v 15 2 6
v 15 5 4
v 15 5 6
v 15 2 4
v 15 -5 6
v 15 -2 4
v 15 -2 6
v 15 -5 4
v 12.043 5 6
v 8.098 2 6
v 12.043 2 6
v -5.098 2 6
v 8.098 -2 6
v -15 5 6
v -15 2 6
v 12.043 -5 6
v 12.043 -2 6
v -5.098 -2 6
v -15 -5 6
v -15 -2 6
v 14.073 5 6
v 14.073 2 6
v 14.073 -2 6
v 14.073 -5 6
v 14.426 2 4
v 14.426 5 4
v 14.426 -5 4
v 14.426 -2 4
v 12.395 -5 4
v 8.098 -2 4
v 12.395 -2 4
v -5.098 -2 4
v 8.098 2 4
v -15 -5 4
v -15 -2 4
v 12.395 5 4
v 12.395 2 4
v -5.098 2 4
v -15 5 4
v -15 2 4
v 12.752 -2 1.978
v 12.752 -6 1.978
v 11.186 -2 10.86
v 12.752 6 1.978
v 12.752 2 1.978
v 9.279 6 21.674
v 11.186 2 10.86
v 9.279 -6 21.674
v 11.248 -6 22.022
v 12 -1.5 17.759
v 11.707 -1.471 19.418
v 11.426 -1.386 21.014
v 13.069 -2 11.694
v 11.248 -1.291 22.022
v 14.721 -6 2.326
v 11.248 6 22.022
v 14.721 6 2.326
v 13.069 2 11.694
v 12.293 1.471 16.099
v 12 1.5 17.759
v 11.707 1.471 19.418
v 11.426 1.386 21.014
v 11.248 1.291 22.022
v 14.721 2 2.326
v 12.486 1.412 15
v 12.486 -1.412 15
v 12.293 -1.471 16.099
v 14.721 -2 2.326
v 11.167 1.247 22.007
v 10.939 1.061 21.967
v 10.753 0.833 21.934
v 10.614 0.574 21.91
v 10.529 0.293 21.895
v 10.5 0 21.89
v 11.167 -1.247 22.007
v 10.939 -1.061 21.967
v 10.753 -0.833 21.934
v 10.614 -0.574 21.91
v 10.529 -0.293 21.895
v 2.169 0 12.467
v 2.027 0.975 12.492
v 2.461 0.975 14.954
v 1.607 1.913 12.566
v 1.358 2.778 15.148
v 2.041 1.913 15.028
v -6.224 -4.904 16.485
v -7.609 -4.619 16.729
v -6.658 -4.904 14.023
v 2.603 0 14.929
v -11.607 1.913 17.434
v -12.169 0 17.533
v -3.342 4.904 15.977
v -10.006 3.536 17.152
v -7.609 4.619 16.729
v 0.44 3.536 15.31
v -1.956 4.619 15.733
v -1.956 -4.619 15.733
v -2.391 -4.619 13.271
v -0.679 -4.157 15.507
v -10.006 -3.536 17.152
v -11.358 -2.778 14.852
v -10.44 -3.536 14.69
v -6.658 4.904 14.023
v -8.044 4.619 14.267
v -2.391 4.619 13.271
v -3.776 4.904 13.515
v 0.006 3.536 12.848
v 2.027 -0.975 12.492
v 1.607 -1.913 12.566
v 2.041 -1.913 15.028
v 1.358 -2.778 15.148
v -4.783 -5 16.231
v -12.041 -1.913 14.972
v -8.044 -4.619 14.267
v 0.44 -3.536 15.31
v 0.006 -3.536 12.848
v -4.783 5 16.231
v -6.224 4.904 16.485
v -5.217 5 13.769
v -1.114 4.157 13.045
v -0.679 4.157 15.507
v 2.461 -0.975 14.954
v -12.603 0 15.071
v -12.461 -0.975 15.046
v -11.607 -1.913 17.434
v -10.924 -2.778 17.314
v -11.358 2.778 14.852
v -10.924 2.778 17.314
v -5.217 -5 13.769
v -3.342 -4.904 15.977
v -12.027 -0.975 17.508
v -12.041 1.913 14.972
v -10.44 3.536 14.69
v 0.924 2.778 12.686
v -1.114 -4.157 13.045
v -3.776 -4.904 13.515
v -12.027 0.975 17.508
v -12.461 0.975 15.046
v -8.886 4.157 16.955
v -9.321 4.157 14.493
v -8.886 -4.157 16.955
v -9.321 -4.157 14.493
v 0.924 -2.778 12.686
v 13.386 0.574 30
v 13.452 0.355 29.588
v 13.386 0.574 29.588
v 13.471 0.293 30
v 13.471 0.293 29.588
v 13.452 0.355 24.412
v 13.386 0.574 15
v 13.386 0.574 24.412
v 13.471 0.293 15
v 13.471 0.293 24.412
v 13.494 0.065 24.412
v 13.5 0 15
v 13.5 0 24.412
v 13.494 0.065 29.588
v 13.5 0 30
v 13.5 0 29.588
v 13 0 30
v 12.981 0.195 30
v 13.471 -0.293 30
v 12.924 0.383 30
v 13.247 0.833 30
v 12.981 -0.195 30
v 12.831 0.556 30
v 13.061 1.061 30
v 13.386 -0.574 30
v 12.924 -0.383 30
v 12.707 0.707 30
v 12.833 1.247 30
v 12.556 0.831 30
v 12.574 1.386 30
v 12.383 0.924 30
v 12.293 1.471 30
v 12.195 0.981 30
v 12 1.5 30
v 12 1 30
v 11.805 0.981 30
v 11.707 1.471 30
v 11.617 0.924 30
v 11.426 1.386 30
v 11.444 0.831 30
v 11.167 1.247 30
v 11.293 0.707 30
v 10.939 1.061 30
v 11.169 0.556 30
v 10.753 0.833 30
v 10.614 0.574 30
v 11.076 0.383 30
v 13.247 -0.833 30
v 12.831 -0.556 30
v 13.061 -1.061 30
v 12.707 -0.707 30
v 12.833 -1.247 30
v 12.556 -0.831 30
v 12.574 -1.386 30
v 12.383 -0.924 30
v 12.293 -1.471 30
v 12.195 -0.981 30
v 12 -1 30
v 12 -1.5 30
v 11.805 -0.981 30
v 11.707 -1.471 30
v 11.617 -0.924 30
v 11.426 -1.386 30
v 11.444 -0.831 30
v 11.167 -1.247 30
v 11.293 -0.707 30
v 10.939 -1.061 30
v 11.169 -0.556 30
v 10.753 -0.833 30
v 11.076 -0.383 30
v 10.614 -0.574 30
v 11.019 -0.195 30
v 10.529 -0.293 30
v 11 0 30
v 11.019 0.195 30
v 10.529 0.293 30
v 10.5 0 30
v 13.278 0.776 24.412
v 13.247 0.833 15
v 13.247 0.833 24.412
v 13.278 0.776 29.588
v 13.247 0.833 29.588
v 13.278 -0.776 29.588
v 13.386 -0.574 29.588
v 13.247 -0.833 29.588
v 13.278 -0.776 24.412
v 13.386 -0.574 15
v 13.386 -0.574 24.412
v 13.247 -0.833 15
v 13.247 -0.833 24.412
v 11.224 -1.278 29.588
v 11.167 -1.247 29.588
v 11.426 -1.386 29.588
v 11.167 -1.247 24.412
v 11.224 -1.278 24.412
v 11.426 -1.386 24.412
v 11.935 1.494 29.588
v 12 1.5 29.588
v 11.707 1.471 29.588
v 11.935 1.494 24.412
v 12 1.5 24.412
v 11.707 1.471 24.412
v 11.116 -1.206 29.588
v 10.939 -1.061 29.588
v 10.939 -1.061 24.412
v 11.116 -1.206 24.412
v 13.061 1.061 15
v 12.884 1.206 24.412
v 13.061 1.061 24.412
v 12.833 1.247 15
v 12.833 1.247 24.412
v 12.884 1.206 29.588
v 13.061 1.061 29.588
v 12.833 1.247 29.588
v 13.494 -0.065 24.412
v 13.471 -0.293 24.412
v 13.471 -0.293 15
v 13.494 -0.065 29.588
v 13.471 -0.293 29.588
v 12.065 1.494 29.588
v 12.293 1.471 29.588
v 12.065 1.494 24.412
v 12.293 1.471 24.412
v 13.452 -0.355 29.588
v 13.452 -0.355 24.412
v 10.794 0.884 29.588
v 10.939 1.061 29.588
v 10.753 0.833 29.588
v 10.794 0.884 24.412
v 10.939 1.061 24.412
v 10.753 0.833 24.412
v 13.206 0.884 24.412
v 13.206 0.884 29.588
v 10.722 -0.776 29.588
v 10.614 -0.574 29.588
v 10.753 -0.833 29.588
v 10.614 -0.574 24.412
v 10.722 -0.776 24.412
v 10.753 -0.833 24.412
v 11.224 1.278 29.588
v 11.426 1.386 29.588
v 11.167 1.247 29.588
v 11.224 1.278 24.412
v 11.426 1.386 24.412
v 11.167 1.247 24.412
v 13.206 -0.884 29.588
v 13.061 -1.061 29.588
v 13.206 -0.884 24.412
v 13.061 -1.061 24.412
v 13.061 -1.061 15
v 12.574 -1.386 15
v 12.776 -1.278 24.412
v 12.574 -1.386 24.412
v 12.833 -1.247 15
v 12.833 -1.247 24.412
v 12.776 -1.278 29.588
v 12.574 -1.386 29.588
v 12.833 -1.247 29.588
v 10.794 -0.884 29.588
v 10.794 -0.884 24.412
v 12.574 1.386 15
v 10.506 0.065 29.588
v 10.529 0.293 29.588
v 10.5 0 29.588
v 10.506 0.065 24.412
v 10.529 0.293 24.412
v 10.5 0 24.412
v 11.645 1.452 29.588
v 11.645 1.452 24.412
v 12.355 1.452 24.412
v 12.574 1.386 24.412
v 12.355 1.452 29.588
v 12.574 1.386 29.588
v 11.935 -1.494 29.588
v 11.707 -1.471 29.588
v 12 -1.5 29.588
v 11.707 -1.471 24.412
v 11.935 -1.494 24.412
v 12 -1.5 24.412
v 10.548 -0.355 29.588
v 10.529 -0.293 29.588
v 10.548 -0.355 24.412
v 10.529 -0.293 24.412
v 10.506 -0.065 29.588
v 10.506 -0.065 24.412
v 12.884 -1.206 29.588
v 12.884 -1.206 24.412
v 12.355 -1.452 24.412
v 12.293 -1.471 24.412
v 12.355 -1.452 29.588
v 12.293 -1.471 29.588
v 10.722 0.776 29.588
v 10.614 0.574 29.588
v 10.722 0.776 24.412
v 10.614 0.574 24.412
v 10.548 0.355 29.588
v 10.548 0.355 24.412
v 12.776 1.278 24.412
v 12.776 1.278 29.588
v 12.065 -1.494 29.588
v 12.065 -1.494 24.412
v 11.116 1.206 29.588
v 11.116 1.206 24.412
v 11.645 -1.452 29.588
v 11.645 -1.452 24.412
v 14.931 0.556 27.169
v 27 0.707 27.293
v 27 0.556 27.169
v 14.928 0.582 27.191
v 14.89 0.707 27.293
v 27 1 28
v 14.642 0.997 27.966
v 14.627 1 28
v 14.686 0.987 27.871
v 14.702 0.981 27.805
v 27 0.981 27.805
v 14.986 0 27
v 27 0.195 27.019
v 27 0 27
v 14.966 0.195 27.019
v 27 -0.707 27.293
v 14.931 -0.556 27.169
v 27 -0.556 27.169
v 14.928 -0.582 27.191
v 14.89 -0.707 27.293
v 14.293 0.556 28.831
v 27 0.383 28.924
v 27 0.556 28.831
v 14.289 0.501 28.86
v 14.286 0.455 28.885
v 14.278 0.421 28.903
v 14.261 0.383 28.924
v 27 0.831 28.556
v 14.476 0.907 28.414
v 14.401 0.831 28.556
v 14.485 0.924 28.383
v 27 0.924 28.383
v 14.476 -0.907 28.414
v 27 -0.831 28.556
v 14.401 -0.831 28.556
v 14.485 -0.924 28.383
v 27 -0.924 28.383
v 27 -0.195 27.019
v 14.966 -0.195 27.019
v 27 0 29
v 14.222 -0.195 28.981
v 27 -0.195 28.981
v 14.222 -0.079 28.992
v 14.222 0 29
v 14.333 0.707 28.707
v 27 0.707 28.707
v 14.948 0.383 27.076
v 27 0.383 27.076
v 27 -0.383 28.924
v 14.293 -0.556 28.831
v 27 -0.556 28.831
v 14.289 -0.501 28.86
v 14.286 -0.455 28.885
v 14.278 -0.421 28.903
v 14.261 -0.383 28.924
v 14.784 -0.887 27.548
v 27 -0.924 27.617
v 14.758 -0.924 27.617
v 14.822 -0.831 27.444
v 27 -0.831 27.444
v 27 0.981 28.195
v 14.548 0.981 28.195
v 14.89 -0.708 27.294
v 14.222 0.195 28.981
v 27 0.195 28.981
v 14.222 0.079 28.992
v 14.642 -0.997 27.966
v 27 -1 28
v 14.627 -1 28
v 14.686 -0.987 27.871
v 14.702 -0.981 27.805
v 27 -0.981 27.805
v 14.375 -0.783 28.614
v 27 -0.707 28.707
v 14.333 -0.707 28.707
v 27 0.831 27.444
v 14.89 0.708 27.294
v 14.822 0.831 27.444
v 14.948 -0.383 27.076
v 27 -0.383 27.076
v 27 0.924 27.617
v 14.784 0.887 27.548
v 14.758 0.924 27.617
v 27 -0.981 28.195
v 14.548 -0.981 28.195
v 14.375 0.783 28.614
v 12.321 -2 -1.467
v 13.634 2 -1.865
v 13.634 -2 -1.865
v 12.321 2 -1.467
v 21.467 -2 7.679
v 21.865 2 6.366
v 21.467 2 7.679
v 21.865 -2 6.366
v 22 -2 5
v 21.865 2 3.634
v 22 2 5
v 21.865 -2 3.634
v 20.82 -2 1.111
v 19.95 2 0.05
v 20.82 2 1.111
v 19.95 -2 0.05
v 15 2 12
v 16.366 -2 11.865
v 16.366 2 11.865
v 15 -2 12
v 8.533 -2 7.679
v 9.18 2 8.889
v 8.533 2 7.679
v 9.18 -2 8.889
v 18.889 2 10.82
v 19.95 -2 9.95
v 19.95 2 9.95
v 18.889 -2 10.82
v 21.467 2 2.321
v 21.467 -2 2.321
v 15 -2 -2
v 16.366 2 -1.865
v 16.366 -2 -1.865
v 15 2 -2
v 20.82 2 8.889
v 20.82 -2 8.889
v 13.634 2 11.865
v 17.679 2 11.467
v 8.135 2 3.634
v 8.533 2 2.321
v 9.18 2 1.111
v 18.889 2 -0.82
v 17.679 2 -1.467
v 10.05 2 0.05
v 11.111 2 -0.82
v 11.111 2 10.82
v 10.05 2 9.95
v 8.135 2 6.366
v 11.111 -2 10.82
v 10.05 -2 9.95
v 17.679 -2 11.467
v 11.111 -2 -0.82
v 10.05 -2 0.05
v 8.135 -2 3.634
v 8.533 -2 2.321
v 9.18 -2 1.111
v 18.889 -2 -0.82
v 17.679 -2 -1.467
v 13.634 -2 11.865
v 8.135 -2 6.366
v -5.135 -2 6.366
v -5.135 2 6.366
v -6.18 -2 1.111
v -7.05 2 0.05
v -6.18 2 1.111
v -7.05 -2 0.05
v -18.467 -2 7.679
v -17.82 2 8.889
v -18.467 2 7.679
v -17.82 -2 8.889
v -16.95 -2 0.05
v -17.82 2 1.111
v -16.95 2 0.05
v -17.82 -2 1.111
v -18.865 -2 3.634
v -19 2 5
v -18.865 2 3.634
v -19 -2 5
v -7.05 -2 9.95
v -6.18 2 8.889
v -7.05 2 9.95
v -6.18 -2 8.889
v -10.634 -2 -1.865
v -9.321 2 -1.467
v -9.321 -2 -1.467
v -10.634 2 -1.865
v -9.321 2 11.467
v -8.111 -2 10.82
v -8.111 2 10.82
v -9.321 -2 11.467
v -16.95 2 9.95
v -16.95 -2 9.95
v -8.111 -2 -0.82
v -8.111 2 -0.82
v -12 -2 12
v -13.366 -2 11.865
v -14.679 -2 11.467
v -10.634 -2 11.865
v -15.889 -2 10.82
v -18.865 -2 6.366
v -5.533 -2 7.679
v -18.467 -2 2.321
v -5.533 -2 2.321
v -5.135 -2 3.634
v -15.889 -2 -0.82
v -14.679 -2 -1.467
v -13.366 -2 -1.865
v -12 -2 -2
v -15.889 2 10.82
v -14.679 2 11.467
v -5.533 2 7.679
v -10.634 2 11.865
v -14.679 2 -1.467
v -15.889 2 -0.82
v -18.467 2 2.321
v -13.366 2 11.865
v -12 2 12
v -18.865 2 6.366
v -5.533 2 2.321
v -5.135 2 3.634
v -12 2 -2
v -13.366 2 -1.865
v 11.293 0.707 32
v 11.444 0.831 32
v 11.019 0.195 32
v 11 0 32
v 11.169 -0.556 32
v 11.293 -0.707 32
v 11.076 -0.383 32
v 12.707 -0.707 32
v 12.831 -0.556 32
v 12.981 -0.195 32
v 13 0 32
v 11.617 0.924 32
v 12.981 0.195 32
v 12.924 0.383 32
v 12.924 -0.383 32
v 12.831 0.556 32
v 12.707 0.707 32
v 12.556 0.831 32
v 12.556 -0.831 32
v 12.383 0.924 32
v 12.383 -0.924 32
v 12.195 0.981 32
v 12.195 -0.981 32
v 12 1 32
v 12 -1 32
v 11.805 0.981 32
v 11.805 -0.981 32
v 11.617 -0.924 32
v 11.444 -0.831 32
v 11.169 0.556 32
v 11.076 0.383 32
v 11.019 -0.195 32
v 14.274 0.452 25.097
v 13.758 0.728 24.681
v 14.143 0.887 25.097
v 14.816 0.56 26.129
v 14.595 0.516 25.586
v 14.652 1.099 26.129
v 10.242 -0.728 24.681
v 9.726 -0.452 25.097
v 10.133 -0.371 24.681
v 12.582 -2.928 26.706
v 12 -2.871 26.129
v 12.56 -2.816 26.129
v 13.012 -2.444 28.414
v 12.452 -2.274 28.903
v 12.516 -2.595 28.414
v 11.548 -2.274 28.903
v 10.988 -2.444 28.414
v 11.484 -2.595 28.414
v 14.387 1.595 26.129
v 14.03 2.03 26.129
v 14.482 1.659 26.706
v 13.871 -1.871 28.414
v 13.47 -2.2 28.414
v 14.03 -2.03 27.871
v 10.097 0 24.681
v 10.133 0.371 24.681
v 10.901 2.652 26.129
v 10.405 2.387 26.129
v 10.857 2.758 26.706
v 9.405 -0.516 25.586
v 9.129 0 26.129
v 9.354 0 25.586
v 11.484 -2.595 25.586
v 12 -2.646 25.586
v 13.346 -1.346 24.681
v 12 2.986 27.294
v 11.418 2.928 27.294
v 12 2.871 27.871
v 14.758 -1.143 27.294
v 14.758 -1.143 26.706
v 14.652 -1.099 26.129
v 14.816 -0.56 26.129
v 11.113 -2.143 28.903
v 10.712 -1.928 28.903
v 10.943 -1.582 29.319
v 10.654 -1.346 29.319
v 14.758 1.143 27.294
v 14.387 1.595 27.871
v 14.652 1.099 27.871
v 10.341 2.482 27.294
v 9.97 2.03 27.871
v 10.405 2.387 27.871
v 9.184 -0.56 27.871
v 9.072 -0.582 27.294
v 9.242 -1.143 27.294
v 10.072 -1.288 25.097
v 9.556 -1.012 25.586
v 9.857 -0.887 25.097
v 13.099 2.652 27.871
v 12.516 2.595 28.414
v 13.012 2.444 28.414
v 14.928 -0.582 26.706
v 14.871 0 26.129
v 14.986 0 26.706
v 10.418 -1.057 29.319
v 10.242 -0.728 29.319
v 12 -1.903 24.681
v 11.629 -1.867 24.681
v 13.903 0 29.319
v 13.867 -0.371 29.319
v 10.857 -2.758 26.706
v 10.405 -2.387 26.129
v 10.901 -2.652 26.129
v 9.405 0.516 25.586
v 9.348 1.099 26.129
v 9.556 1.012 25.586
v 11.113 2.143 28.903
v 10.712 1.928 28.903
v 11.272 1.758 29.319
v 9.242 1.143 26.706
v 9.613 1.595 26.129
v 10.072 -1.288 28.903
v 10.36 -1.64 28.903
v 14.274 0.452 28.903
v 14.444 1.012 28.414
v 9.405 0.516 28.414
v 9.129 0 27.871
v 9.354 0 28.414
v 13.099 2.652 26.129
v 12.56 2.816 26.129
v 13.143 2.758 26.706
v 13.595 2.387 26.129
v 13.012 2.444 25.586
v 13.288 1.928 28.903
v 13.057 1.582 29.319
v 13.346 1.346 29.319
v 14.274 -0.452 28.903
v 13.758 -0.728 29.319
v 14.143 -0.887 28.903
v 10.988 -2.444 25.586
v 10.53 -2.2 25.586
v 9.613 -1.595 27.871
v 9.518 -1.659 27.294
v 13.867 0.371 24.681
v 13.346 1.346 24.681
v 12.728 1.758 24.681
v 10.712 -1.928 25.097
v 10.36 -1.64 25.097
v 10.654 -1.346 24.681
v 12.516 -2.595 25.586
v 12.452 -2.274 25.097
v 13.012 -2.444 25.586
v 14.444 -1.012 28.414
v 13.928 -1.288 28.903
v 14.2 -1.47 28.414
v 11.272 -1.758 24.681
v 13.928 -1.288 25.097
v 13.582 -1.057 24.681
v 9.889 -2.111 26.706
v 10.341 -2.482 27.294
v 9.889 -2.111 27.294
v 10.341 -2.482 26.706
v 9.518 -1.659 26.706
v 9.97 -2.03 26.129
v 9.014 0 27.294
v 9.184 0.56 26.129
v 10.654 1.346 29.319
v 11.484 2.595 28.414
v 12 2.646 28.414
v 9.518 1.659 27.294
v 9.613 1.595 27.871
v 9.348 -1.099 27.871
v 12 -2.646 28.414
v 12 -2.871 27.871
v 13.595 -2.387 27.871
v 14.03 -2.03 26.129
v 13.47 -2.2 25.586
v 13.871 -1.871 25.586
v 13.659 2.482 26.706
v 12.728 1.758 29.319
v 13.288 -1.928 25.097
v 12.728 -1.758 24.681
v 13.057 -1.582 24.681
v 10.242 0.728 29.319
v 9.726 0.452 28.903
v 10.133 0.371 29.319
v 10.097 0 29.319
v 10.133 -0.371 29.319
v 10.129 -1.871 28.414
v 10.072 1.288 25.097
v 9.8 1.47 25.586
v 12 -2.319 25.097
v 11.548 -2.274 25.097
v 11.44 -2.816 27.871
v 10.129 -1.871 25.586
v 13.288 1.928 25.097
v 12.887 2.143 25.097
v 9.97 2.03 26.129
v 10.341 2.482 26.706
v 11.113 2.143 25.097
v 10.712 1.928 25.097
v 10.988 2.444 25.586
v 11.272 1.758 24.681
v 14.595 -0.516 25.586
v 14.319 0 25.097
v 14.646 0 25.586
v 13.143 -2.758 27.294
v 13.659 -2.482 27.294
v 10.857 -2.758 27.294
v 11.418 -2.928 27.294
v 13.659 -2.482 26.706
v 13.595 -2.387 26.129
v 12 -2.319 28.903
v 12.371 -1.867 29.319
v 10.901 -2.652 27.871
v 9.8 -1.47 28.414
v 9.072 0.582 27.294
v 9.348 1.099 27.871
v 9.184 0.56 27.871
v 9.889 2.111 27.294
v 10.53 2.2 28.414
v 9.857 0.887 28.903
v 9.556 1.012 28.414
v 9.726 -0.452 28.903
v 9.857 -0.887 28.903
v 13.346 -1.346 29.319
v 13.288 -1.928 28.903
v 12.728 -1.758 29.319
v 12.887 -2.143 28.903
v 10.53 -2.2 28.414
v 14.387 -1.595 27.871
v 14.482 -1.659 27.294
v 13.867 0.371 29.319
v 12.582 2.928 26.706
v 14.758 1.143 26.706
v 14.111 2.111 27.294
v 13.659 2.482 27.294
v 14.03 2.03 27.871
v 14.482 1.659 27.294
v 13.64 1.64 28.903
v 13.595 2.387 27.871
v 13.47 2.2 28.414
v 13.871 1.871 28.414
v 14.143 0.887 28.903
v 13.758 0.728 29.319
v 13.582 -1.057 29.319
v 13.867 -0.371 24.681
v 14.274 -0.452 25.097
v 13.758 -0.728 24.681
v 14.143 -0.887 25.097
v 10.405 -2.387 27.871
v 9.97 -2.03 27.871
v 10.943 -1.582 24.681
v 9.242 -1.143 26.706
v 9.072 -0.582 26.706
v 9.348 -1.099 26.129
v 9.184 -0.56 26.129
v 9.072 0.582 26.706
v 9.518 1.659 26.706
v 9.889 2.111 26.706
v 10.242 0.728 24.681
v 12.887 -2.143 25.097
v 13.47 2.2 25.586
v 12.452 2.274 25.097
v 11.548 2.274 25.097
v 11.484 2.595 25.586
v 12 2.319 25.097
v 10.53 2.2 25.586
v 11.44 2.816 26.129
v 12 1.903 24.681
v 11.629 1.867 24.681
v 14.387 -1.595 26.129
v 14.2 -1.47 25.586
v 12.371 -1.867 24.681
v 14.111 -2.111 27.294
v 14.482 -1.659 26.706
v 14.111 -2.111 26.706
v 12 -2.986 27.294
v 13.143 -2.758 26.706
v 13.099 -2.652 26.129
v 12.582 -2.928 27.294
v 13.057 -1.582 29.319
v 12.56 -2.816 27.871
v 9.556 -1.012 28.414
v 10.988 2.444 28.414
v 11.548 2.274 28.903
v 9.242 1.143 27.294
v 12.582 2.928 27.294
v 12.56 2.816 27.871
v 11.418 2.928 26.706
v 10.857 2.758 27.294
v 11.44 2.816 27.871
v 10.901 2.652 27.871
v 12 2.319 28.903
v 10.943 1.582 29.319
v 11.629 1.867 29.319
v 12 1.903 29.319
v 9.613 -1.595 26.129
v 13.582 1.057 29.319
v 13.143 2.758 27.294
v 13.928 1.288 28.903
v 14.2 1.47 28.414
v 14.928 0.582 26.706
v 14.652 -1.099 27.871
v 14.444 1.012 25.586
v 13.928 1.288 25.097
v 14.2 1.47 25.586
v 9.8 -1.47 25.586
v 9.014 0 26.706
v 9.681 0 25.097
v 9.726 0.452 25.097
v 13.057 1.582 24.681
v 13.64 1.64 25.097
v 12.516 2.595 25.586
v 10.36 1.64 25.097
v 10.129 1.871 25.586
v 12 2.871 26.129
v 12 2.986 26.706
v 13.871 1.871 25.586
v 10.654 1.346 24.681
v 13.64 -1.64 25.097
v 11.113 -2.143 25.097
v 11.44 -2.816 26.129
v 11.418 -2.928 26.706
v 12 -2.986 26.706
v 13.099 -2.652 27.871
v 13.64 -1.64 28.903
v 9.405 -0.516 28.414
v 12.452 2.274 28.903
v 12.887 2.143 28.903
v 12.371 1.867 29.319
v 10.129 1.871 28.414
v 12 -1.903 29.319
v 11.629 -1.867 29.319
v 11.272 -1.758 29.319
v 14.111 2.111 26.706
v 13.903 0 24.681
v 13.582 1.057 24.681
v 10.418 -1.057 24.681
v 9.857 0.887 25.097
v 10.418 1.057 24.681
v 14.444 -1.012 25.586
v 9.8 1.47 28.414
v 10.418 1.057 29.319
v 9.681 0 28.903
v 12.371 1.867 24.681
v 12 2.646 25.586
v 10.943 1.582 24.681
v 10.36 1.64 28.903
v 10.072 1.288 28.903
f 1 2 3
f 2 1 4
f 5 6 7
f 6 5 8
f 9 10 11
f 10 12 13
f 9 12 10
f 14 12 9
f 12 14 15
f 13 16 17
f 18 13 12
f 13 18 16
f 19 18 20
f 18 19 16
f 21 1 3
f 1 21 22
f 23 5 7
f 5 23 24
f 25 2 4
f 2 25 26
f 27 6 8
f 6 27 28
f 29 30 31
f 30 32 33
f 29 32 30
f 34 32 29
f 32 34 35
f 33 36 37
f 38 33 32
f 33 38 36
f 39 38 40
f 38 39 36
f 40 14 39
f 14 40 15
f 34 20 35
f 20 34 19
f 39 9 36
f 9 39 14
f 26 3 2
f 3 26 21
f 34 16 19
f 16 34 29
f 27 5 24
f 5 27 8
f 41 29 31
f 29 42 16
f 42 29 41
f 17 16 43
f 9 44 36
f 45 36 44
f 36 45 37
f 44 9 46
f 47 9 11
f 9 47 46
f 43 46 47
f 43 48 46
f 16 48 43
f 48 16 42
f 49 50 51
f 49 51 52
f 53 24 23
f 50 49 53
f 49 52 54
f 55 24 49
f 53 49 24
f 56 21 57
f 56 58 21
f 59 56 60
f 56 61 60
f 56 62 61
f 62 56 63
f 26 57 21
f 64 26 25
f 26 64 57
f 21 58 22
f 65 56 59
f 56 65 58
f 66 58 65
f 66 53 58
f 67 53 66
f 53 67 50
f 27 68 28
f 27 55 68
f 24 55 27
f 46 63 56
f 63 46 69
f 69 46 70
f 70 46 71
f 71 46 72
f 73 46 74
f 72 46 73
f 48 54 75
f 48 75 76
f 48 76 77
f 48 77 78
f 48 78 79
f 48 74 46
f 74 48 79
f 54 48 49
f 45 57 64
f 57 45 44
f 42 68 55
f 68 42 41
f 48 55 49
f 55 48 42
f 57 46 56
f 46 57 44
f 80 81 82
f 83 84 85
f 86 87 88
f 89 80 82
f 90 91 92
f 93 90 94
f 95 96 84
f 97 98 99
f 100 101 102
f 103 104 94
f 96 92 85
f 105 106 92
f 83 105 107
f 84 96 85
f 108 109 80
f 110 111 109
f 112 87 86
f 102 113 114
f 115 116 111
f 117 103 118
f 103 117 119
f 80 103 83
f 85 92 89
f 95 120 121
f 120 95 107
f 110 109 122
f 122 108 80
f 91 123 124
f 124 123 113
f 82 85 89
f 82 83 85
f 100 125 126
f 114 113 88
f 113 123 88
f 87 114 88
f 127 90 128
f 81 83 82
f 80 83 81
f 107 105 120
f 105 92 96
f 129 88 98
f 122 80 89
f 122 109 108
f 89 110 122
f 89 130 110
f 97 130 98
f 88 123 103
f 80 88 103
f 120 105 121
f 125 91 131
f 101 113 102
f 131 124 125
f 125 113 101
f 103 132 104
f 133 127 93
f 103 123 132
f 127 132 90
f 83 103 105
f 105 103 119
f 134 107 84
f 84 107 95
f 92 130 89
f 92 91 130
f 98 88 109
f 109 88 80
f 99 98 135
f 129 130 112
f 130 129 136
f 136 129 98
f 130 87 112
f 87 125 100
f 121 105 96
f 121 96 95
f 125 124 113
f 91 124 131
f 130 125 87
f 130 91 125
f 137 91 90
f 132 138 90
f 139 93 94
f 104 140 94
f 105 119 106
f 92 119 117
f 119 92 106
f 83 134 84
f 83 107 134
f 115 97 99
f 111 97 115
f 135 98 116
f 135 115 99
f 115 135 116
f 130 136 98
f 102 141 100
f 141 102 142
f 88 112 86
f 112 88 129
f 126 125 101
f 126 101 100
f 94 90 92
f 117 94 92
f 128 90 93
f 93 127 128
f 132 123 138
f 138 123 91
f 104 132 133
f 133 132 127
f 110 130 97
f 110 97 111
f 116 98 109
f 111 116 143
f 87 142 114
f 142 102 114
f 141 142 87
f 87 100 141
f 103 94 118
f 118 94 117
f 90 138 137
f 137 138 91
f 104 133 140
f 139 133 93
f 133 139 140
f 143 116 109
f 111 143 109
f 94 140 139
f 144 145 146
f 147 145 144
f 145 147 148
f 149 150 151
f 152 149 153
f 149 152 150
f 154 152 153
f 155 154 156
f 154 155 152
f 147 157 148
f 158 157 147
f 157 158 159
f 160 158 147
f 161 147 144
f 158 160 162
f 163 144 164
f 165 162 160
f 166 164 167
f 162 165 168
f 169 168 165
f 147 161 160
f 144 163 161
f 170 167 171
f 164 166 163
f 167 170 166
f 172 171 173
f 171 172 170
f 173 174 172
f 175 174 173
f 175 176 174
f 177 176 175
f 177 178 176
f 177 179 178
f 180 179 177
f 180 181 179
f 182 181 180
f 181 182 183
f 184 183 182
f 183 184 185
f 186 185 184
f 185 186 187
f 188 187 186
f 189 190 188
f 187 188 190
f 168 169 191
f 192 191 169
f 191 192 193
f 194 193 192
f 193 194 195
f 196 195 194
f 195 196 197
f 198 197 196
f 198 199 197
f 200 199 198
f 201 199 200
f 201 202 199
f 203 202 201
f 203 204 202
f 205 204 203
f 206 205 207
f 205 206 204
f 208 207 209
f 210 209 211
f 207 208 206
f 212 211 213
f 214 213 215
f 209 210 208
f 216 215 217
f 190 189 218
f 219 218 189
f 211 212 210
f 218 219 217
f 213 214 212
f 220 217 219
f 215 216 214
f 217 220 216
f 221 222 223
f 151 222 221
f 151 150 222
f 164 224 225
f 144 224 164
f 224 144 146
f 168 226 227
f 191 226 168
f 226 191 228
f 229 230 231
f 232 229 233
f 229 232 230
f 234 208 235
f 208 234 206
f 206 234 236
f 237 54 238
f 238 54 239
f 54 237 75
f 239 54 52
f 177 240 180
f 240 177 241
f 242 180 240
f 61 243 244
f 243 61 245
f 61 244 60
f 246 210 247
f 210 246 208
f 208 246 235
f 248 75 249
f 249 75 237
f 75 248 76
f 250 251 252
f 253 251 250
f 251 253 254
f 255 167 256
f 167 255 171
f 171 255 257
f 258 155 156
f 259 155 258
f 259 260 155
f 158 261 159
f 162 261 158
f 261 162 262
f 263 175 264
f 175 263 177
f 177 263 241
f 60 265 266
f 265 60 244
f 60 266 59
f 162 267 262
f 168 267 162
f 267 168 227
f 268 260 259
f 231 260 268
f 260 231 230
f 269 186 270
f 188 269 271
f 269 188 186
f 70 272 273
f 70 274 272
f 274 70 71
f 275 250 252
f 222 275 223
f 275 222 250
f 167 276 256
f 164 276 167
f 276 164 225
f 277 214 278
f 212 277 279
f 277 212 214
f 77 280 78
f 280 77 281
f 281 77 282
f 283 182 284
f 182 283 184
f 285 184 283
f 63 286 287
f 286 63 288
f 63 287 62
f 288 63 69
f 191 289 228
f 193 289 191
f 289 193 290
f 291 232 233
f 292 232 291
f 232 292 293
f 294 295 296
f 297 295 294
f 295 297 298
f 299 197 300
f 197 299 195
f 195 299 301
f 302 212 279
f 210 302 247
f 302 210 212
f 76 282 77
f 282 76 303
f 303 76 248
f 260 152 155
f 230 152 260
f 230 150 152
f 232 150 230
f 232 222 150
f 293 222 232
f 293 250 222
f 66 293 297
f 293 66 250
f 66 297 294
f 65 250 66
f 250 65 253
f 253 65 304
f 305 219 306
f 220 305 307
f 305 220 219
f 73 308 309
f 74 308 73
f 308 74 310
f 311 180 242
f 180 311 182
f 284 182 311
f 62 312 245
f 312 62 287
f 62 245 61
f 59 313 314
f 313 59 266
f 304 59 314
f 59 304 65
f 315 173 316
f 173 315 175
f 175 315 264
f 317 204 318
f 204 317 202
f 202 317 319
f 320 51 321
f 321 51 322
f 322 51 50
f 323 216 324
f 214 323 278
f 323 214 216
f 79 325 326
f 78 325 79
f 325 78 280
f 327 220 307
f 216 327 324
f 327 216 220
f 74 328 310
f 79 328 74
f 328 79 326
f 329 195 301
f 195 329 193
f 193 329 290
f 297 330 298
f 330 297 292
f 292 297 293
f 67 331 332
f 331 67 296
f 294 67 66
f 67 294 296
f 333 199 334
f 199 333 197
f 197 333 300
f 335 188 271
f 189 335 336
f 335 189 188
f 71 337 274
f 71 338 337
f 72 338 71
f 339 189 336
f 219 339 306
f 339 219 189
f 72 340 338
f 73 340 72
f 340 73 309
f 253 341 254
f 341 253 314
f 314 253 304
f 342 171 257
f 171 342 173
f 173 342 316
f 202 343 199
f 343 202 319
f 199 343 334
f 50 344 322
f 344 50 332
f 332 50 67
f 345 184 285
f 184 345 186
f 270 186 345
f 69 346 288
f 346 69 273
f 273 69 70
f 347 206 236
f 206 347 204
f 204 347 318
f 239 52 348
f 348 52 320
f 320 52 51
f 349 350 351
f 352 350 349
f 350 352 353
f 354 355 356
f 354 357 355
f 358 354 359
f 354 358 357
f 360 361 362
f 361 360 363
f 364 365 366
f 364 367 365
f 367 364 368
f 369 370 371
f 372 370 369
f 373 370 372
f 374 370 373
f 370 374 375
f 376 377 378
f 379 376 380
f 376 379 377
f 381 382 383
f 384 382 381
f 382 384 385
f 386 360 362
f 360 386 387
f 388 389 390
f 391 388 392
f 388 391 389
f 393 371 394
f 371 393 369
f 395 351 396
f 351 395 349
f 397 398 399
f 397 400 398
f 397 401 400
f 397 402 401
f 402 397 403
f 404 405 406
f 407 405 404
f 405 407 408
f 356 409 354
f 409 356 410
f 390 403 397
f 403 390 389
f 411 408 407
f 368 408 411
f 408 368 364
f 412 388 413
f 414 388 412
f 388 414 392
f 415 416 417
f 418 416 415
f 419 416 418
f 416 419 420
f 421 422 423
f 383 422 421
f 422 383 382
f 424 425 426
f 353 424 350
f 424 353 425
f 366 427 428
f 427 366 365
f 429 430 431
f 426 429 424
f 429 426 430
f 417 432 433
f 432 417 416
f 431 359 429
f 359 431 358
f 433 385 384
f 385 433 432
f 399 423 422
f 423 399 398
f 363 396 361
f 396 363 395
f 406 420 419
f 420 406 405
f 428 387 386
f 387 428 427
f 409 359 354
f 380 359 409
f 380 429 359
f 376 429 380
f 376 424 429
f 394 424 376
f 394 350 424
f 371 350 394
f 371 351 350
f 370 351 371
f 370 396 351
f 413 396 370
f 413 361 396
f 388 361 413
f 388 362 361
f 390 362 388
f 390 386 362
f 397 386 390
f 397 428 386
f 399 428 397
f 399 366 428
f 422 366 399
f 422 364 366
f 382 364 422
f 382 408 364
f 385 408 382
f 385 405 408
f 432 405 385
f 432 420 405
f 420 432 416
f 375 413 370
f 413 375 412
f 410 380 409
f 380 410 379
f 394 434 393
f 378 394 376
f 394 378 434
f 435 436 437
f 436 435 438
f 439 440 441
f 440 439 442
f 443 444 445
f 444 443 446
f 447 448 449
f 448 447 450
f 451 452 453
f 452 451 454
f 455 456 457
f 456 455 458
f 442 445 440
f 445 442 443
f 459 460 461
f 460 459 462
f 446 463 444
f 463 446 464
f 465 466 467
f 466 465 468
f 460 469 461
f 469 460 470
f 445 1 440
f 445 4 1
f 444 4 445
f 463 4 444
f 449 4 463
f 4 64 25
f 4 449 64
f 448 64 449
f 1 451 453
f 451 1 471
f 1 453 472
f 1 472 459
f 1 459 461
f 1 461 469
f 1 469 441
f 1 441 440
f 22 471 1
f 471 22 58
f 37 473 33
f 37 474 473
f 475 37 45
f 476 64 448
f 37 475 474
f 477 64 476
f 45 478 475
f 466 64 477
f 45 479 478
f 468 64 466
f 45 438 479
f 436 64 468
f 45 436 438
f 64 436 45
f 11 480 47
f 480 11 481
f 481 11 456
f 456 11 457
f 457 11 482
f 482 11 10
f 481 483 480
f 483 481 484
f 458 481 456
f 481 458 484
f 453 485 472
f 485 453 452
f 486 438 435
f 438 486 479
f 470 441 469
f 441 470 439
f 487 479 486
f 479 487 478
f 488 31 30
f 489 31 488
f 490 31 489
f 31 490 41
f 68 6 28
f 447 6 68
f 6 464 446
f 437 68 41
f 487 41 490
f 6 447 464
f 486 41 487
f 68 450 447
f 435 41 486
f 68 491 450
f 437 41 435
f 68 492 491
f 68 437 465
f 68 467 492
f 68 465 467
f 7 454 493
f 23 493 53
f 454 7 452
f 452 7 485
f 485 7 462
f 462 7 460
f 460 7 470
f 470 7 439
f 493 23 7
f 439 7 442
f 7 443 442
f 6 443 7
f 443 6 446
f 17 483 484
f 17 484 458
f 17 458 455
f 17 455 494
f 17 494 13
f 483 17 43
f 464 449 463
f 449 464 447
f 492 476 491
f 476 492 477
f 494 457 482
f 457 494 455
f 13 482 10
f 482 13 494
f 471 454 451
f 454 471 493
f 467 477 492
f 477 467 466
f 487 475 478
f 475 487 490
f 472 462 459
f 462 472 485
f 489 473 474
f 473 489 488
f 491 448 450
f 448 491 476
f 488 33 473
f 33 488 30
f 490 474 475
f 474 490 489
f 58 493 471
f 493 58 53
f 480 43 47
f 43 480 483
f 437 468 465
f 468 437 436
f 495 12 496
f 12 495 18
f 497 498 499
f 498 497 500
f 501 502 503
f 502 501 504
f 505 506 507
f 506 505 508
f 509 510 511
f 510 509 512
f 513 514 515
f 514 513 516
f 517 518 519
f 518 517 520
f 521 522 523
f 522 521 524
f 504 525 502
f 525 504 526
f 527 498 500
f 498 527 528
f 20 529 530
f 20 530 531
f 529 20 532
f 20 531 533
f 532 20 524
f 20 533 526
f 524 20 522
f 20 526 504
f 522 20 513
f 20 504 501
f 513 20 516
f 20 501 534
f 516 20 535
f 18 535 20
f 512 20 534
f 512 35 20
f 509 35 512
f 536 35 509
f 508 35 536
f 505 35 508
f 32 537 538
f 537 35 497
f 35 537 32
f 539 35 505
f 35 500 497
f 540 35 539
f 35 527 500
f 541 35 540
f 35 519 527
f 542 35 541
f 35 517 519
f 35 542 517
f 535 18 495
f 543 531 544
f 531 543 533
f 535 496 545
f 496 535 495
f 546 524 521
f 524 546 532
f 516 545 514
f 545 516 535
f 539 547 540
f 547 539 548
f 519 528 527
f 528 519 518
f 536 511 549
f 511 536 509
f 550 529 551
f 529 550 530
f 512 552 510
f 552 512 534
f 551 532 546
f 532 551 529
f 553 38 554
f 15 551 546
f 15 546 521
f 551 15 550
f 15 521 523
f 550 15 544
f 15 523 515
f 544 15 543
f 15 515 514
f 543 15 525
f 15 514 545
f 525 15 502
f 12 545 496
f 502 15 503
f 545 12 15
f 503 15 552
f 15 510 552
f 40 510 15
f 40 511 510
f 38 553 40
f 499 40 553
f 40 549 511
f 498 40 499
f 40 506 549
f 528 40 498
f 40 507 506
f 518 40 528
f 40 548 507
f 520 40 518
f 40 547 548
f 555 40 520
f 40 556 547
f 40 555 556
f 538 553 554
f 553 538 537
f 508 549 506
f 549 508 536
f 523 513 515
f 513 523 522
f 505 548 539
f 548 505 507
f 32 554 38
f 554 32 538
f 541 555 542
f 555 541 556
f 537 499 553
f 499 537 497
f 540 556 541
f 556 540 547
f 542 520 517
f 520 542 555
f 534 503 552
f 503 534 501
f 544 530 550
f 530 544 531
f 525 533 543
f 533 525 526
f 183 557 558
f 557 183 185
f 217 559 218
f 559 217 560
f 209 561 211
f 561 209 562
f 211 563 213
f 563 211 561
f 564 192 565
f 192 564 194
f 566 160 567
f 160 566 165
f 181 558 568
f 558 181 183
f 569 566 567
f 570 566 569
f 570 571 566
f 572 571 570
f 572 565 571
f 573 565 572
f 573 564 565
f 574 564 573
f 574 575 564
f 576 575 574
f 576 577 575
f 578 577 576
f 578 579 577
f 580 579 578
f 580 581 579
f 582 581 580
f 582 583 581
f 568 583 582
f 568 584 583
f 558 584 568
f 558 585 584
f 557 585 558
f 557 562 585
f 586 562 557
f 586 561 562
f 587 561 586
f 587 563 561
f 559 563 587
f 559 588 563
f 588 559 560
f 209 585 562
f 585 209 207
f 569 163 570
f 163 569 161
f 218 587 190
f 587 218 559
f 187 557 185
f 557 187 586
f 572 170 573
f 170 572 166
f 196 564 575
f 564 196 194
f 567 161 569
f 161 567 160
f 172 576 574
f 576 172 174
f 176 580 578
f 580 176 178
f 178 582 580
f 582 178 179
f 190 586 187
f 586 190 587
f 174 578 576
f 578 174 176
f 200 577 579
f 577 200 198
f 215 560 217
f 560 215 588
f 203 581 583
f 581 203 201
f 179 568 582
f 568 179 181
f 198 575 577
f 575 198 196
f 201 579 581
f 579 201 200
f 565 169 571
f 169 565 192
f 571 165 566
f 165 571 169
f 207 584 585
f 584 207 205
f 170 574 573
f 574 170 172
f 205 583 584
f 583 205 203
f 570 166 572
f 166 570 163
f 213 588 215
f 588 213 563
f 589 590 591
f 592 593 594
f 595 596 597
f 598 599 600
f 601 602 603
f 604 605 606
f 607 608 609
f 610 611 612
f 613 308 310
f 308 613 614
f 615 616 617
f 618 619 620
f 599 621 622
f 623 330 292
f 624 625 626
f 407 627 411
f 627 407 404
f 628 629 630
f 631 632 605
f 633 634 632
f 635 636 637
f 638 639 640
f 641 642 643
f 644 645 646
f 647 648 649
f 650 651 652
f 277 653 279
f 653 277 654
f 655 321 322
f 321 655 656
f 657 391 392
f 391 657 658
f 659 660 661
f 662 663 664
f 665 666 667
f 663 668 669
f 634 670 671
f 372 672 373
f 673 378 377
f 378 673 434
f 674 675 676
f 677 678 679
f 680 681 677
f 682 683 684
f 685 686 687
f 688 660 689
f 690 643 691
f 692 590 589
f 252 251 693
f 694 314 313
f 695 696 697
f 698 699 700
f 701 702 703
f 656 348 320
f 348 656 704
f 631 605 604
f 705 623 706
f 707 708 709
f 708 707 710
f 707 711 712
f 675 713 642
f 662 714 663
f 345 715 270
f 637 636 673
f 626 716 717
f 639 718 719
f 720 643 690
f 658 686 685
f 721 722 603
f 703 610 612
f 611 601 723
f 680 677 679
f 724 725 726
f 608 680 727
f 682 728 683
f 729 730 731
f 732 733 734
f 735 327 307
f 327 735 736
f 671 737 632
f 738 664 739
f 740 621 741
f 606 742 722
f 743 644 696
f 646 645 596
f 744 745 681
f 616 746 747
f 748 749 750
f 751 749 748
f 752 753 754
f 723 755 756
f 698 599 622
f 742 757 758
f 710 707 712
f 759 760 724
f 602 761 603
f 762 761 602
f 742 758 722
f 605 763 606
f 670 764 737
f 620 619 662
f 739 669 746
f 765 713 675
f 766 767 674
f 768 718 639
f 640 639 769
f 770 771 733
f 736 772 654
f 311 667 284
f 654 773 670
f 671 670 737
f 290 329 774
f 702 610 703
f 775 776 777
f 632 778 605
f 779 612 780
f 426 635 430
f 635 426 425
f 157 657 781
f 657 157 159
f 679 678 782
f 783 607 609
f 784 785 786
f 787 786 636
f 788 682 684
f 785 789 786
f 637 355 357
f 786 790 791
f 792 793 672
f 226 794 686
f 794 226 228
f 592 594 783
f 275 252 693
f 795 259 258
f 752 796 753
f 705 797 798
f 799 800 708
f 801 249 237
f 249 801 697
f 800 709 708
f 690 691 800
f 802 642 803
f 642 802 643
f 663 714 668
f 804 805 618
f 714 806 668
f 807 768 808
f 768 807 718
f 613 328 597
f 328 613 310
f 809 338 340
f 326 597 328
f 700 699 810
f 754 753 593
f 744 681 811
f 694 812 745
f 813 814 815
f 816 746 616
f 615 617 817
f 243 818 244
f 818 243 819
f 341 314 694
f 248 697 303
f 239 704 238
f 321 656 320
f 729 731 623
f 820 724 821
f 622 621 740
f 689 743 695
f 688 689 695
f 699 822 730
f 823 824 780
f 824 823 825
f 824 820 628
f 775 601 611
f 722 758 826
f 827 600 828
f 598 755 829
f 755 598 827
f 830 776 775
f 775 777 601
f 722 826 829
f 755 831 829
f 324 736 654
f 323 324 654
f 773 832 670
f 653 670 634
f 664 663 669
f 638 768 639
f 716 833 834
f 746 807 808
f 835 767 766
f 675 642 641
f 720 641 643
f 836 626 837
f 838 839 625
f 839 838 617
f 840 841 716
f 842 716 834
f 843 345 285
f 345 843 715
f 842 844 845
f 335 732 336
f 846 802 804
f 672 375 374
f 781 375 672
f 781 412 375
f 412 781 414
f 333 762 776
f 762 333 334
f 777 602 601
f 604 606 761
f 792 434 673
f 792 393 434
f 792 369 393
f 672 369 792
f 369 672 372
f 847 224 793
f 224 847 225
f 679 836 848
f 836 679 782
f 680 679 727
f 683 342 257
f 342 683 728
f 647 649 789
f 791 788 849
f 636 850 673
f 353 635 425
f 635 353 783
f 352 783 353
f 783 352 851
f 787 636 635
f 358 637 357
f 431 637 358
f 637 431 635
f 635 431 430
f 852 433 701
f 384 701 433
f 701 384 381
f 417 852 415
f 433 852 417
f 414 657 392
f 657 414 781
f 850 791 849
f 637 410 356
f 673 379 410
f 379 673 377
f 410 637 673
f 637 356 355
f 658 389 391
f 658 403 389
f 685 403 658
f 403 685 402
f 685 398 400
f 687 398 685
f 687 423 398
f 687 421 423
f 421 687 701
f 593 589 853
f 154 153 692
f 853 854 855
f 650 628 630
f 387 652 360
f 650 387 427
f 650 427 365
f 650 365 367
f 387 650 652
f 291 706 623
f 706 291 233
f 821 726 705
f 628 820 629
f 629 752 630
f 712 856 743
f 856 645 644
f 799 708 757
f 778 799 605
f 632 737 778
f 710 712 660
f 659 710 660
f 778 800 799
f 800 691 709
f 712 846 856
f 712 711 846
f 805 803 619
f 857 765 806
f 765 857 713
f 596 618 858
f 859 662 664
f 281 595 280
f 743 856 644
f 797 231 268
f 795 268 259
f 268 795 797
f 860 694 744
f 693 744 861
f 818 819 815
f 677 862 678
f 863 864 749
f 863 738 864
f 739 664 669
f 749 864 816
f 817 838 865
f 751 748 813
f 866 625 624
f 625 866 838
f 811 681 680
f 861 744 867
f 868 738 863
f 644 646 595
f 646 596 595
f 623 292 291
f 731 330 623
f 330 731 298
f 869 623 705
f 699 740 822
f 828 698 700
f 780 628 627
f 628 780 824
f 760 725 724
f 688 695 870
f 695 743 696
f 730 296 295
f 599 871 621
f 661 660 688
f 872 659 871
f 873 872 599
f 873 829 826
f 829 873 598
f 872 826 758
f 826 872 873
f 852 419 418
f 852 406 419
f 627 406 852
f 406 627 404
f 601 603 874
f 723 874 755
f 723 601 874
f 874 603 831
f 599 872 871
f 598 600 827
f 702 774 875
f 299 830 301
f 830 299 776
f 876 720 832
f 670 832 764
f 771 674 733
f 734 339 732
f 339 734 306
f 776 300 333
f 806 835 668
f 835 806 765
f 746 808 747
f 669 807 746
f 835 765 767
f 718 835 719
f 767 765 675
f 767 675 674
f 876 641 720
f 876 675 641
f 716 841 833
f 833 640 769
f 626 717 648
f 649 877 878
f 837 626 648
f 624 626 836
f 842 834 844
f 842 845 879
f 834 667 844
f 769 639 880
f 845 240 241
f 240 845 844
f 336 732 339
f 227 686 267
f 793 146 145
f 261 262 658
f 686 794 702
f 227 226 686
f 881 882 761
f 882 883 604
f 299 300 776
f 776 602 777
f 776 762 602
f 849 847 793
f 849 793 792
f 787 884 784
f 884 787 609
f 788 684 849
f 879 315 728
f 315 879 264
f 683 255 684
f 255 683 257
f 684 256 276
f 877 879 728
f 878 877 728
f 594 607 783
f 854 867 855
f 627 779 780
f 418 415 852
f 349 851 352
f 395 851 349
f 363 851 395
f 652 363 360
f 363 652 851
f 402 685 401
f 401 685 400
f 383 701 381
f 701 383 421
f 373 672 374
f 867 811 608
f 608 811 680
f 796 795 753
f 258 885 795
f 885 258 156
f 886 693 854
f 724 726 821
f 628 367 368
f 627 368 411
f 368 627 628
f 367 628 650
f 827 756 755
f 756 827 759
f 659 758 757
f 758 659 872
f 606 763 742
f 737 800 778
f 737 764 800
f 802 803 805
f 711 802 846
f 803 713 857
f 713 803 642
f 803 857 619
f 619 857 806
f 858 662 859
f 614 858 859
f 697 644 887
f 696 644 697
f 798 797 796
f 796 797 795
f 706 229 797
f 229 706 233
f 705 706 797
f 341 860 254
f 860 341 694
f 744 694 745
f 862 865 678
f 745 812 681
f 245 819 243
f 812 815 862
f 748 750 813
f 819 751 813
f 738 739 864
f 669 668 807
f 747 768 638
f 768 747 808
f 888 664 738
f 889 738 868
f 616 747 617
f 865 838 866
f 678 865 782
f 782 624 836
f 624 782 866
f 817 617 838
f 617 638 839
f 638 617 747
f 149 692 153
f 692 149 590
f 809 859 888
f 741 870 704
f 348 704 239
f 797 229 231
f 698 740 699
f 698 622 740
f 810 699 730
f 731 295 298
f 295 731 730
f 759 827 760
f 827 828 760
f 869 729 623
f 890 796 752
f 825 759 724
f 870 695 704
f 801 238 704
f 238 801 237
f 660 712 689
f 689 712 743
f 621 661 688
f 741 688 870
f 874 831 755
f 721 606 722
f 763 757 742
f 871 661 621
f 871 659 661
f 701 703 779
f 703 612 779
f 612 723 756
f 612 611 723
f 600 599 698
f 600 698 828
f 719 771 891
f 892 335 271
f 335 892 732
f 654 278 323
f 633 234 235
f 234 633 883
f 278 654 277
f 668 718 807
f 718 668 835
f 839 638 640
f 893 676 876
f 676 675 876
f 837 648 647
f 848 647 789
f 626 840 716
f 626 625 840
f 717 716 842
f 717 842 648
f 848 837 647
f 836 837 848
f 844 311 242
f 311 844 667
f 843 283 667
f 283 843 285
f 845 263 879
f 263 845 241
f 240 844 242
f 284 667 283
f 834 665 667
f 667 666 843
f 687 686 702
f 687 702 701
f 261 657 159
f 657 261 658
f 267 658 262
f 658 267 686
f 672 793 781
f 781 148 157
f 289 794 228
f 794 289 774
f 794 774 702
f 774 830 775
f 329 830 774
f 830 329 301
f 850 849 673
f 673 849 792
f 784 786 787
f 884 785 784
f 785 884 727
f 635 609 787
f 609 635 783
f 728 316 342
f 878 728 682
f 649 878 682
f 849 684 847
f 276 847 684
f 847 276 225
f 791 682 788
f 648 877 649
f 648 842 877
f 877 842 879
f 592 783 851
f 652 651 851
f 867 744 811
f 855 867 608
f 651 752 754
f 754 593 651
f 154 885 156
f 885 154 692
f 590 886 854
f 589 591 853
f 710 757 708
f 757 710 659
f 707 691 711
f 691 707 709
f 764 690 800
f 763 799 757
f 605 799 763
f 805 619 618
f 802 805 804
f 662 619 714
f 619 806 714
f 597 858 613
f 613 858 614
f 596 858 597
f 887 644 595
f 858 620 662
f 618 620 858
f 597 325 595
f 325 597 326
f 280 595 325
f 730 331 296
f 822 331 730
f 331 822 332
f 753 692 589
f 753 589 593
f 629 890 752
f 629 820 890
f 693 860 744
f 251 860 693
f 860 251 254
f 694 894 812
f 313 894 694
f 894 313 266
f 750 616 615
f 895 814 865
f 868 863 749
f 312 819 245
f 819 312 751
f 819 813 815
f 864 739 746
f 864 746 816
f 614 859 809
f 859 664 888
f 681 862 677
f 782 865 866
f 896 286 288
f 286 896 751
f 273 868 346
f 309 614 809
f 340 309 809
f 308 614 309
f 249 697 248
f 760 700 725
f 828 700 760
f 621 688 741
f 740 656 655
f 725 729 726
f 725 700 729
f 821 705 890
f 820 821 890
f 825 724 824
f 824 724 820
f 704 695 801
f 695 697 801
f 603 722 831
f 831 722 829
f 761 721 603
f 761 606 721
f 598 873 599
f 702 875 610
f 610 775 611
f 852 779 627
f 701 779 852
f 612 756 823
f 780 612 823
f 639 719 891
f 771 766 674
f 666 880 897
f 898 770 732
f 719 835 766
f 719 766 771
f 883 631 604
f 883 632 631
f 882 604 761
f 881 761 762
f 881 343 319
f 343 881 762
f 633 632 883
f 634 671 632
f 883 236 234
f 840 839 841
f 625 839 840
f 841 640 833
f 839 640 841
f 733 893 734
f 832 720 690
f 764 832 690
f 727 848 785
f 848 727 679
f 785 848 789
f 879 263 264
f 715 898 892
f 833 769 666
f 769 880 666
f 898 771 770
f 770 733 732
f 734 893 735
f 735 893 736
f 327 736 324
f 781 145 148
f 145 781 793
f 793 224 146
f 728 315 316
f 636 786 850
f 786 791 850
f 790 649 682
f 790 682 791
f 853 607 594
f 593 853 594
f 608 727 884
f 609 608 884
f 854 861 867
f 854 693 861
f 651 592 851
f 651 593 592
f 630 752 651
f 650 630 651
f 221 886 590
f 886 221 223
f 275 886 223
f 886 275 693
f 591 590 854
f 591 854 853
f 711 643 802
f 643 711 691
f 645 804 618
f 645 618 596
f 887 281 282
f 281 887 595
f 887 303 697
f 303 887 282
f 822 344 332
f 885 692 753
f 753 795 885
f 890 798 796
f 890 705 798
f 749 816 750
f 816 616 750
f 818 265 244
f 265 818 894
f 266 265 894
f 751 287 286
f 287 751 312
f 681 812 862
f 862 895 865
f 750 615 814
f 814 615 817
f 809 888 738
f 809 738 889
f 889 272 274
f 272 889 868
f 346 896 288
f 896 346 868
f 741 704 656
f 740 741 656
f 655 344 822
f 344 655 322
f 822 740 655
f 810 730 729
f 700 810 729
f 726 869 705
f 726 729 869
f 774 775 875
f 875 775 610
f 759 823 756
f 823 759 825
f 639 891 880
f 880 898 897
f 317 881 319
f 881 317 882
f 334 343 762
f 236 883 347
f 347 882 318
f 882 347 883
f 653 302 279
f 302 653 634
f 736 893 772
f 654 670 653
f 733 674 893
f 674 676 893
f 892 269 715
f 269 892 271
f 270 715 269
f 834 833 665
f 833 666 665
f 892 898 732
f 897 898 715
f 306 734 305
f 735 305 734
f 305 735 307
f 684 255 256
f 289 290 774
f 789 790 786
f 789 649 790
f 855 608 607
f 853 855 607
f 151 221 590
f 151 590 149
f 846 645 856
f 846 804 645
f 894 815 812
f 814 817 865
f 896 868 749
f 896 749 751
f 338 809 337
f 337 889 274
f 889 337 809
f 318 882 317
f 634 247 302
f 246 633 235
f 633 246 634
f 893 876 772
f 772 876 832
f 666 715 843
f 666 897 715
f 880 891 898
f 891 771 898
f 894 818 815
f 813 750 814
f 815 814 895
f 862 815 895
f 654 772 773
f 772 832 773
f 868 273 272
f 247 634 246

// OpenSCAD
$fn = 32;

// Scooter Body (Main Frame)
module scooter_body() {
    union() {
        // Base/Floorboard
        translate([0, 0, 5])
        cube([30, 10, 2], center=true);
        
        // Front Shield/Leg Guard
        translate([12, 0, 12])
        rotate([0, -10, 0])
        cube([2, 12, 20], center=true);
        
        // Seat
        translate([-5, 0, 15])
        rotate([0, 10, 0])
        scale([1.5, 1, 0.5])
        cylinder(h=5, r=5, center=true);

        // Handlebars/Stem
        translate([12, 0, 15])
        cylinder(h=15, r=1.5);
        
        // Handlebars
        translate([12, 0, 28])
        rotate([0, 90, 0])
        cylinder(h=15, r=1);
        
        // Front Wheel
        translate([15, 0, 5])
        rotate([90, 0, 0])
        cylinder(h=4, r=7, center=true);
        
        // Rear Wheel
        translate([-12, 0, 5])
        rotate([90, 0, 0])
        cylinder(h=4, r=7, center=true);
        
        // Rear Stand/Support
        translate([-10, 0, 2])
        cube([2, 2, 5], center=true);
    }
}

// Mirror
module mirror() {
    translate([12, 0, 32])
    rotate([0, 180, 0])
    union() {
        // Mirror Stem
        cylinder(h=5, r=1);
        // Mirror Head
        translate([0, 0, 5])
        sphere(r=3);
    }
}

// Final Assembly
union() {
    scooter_body();
    mirror();
}
